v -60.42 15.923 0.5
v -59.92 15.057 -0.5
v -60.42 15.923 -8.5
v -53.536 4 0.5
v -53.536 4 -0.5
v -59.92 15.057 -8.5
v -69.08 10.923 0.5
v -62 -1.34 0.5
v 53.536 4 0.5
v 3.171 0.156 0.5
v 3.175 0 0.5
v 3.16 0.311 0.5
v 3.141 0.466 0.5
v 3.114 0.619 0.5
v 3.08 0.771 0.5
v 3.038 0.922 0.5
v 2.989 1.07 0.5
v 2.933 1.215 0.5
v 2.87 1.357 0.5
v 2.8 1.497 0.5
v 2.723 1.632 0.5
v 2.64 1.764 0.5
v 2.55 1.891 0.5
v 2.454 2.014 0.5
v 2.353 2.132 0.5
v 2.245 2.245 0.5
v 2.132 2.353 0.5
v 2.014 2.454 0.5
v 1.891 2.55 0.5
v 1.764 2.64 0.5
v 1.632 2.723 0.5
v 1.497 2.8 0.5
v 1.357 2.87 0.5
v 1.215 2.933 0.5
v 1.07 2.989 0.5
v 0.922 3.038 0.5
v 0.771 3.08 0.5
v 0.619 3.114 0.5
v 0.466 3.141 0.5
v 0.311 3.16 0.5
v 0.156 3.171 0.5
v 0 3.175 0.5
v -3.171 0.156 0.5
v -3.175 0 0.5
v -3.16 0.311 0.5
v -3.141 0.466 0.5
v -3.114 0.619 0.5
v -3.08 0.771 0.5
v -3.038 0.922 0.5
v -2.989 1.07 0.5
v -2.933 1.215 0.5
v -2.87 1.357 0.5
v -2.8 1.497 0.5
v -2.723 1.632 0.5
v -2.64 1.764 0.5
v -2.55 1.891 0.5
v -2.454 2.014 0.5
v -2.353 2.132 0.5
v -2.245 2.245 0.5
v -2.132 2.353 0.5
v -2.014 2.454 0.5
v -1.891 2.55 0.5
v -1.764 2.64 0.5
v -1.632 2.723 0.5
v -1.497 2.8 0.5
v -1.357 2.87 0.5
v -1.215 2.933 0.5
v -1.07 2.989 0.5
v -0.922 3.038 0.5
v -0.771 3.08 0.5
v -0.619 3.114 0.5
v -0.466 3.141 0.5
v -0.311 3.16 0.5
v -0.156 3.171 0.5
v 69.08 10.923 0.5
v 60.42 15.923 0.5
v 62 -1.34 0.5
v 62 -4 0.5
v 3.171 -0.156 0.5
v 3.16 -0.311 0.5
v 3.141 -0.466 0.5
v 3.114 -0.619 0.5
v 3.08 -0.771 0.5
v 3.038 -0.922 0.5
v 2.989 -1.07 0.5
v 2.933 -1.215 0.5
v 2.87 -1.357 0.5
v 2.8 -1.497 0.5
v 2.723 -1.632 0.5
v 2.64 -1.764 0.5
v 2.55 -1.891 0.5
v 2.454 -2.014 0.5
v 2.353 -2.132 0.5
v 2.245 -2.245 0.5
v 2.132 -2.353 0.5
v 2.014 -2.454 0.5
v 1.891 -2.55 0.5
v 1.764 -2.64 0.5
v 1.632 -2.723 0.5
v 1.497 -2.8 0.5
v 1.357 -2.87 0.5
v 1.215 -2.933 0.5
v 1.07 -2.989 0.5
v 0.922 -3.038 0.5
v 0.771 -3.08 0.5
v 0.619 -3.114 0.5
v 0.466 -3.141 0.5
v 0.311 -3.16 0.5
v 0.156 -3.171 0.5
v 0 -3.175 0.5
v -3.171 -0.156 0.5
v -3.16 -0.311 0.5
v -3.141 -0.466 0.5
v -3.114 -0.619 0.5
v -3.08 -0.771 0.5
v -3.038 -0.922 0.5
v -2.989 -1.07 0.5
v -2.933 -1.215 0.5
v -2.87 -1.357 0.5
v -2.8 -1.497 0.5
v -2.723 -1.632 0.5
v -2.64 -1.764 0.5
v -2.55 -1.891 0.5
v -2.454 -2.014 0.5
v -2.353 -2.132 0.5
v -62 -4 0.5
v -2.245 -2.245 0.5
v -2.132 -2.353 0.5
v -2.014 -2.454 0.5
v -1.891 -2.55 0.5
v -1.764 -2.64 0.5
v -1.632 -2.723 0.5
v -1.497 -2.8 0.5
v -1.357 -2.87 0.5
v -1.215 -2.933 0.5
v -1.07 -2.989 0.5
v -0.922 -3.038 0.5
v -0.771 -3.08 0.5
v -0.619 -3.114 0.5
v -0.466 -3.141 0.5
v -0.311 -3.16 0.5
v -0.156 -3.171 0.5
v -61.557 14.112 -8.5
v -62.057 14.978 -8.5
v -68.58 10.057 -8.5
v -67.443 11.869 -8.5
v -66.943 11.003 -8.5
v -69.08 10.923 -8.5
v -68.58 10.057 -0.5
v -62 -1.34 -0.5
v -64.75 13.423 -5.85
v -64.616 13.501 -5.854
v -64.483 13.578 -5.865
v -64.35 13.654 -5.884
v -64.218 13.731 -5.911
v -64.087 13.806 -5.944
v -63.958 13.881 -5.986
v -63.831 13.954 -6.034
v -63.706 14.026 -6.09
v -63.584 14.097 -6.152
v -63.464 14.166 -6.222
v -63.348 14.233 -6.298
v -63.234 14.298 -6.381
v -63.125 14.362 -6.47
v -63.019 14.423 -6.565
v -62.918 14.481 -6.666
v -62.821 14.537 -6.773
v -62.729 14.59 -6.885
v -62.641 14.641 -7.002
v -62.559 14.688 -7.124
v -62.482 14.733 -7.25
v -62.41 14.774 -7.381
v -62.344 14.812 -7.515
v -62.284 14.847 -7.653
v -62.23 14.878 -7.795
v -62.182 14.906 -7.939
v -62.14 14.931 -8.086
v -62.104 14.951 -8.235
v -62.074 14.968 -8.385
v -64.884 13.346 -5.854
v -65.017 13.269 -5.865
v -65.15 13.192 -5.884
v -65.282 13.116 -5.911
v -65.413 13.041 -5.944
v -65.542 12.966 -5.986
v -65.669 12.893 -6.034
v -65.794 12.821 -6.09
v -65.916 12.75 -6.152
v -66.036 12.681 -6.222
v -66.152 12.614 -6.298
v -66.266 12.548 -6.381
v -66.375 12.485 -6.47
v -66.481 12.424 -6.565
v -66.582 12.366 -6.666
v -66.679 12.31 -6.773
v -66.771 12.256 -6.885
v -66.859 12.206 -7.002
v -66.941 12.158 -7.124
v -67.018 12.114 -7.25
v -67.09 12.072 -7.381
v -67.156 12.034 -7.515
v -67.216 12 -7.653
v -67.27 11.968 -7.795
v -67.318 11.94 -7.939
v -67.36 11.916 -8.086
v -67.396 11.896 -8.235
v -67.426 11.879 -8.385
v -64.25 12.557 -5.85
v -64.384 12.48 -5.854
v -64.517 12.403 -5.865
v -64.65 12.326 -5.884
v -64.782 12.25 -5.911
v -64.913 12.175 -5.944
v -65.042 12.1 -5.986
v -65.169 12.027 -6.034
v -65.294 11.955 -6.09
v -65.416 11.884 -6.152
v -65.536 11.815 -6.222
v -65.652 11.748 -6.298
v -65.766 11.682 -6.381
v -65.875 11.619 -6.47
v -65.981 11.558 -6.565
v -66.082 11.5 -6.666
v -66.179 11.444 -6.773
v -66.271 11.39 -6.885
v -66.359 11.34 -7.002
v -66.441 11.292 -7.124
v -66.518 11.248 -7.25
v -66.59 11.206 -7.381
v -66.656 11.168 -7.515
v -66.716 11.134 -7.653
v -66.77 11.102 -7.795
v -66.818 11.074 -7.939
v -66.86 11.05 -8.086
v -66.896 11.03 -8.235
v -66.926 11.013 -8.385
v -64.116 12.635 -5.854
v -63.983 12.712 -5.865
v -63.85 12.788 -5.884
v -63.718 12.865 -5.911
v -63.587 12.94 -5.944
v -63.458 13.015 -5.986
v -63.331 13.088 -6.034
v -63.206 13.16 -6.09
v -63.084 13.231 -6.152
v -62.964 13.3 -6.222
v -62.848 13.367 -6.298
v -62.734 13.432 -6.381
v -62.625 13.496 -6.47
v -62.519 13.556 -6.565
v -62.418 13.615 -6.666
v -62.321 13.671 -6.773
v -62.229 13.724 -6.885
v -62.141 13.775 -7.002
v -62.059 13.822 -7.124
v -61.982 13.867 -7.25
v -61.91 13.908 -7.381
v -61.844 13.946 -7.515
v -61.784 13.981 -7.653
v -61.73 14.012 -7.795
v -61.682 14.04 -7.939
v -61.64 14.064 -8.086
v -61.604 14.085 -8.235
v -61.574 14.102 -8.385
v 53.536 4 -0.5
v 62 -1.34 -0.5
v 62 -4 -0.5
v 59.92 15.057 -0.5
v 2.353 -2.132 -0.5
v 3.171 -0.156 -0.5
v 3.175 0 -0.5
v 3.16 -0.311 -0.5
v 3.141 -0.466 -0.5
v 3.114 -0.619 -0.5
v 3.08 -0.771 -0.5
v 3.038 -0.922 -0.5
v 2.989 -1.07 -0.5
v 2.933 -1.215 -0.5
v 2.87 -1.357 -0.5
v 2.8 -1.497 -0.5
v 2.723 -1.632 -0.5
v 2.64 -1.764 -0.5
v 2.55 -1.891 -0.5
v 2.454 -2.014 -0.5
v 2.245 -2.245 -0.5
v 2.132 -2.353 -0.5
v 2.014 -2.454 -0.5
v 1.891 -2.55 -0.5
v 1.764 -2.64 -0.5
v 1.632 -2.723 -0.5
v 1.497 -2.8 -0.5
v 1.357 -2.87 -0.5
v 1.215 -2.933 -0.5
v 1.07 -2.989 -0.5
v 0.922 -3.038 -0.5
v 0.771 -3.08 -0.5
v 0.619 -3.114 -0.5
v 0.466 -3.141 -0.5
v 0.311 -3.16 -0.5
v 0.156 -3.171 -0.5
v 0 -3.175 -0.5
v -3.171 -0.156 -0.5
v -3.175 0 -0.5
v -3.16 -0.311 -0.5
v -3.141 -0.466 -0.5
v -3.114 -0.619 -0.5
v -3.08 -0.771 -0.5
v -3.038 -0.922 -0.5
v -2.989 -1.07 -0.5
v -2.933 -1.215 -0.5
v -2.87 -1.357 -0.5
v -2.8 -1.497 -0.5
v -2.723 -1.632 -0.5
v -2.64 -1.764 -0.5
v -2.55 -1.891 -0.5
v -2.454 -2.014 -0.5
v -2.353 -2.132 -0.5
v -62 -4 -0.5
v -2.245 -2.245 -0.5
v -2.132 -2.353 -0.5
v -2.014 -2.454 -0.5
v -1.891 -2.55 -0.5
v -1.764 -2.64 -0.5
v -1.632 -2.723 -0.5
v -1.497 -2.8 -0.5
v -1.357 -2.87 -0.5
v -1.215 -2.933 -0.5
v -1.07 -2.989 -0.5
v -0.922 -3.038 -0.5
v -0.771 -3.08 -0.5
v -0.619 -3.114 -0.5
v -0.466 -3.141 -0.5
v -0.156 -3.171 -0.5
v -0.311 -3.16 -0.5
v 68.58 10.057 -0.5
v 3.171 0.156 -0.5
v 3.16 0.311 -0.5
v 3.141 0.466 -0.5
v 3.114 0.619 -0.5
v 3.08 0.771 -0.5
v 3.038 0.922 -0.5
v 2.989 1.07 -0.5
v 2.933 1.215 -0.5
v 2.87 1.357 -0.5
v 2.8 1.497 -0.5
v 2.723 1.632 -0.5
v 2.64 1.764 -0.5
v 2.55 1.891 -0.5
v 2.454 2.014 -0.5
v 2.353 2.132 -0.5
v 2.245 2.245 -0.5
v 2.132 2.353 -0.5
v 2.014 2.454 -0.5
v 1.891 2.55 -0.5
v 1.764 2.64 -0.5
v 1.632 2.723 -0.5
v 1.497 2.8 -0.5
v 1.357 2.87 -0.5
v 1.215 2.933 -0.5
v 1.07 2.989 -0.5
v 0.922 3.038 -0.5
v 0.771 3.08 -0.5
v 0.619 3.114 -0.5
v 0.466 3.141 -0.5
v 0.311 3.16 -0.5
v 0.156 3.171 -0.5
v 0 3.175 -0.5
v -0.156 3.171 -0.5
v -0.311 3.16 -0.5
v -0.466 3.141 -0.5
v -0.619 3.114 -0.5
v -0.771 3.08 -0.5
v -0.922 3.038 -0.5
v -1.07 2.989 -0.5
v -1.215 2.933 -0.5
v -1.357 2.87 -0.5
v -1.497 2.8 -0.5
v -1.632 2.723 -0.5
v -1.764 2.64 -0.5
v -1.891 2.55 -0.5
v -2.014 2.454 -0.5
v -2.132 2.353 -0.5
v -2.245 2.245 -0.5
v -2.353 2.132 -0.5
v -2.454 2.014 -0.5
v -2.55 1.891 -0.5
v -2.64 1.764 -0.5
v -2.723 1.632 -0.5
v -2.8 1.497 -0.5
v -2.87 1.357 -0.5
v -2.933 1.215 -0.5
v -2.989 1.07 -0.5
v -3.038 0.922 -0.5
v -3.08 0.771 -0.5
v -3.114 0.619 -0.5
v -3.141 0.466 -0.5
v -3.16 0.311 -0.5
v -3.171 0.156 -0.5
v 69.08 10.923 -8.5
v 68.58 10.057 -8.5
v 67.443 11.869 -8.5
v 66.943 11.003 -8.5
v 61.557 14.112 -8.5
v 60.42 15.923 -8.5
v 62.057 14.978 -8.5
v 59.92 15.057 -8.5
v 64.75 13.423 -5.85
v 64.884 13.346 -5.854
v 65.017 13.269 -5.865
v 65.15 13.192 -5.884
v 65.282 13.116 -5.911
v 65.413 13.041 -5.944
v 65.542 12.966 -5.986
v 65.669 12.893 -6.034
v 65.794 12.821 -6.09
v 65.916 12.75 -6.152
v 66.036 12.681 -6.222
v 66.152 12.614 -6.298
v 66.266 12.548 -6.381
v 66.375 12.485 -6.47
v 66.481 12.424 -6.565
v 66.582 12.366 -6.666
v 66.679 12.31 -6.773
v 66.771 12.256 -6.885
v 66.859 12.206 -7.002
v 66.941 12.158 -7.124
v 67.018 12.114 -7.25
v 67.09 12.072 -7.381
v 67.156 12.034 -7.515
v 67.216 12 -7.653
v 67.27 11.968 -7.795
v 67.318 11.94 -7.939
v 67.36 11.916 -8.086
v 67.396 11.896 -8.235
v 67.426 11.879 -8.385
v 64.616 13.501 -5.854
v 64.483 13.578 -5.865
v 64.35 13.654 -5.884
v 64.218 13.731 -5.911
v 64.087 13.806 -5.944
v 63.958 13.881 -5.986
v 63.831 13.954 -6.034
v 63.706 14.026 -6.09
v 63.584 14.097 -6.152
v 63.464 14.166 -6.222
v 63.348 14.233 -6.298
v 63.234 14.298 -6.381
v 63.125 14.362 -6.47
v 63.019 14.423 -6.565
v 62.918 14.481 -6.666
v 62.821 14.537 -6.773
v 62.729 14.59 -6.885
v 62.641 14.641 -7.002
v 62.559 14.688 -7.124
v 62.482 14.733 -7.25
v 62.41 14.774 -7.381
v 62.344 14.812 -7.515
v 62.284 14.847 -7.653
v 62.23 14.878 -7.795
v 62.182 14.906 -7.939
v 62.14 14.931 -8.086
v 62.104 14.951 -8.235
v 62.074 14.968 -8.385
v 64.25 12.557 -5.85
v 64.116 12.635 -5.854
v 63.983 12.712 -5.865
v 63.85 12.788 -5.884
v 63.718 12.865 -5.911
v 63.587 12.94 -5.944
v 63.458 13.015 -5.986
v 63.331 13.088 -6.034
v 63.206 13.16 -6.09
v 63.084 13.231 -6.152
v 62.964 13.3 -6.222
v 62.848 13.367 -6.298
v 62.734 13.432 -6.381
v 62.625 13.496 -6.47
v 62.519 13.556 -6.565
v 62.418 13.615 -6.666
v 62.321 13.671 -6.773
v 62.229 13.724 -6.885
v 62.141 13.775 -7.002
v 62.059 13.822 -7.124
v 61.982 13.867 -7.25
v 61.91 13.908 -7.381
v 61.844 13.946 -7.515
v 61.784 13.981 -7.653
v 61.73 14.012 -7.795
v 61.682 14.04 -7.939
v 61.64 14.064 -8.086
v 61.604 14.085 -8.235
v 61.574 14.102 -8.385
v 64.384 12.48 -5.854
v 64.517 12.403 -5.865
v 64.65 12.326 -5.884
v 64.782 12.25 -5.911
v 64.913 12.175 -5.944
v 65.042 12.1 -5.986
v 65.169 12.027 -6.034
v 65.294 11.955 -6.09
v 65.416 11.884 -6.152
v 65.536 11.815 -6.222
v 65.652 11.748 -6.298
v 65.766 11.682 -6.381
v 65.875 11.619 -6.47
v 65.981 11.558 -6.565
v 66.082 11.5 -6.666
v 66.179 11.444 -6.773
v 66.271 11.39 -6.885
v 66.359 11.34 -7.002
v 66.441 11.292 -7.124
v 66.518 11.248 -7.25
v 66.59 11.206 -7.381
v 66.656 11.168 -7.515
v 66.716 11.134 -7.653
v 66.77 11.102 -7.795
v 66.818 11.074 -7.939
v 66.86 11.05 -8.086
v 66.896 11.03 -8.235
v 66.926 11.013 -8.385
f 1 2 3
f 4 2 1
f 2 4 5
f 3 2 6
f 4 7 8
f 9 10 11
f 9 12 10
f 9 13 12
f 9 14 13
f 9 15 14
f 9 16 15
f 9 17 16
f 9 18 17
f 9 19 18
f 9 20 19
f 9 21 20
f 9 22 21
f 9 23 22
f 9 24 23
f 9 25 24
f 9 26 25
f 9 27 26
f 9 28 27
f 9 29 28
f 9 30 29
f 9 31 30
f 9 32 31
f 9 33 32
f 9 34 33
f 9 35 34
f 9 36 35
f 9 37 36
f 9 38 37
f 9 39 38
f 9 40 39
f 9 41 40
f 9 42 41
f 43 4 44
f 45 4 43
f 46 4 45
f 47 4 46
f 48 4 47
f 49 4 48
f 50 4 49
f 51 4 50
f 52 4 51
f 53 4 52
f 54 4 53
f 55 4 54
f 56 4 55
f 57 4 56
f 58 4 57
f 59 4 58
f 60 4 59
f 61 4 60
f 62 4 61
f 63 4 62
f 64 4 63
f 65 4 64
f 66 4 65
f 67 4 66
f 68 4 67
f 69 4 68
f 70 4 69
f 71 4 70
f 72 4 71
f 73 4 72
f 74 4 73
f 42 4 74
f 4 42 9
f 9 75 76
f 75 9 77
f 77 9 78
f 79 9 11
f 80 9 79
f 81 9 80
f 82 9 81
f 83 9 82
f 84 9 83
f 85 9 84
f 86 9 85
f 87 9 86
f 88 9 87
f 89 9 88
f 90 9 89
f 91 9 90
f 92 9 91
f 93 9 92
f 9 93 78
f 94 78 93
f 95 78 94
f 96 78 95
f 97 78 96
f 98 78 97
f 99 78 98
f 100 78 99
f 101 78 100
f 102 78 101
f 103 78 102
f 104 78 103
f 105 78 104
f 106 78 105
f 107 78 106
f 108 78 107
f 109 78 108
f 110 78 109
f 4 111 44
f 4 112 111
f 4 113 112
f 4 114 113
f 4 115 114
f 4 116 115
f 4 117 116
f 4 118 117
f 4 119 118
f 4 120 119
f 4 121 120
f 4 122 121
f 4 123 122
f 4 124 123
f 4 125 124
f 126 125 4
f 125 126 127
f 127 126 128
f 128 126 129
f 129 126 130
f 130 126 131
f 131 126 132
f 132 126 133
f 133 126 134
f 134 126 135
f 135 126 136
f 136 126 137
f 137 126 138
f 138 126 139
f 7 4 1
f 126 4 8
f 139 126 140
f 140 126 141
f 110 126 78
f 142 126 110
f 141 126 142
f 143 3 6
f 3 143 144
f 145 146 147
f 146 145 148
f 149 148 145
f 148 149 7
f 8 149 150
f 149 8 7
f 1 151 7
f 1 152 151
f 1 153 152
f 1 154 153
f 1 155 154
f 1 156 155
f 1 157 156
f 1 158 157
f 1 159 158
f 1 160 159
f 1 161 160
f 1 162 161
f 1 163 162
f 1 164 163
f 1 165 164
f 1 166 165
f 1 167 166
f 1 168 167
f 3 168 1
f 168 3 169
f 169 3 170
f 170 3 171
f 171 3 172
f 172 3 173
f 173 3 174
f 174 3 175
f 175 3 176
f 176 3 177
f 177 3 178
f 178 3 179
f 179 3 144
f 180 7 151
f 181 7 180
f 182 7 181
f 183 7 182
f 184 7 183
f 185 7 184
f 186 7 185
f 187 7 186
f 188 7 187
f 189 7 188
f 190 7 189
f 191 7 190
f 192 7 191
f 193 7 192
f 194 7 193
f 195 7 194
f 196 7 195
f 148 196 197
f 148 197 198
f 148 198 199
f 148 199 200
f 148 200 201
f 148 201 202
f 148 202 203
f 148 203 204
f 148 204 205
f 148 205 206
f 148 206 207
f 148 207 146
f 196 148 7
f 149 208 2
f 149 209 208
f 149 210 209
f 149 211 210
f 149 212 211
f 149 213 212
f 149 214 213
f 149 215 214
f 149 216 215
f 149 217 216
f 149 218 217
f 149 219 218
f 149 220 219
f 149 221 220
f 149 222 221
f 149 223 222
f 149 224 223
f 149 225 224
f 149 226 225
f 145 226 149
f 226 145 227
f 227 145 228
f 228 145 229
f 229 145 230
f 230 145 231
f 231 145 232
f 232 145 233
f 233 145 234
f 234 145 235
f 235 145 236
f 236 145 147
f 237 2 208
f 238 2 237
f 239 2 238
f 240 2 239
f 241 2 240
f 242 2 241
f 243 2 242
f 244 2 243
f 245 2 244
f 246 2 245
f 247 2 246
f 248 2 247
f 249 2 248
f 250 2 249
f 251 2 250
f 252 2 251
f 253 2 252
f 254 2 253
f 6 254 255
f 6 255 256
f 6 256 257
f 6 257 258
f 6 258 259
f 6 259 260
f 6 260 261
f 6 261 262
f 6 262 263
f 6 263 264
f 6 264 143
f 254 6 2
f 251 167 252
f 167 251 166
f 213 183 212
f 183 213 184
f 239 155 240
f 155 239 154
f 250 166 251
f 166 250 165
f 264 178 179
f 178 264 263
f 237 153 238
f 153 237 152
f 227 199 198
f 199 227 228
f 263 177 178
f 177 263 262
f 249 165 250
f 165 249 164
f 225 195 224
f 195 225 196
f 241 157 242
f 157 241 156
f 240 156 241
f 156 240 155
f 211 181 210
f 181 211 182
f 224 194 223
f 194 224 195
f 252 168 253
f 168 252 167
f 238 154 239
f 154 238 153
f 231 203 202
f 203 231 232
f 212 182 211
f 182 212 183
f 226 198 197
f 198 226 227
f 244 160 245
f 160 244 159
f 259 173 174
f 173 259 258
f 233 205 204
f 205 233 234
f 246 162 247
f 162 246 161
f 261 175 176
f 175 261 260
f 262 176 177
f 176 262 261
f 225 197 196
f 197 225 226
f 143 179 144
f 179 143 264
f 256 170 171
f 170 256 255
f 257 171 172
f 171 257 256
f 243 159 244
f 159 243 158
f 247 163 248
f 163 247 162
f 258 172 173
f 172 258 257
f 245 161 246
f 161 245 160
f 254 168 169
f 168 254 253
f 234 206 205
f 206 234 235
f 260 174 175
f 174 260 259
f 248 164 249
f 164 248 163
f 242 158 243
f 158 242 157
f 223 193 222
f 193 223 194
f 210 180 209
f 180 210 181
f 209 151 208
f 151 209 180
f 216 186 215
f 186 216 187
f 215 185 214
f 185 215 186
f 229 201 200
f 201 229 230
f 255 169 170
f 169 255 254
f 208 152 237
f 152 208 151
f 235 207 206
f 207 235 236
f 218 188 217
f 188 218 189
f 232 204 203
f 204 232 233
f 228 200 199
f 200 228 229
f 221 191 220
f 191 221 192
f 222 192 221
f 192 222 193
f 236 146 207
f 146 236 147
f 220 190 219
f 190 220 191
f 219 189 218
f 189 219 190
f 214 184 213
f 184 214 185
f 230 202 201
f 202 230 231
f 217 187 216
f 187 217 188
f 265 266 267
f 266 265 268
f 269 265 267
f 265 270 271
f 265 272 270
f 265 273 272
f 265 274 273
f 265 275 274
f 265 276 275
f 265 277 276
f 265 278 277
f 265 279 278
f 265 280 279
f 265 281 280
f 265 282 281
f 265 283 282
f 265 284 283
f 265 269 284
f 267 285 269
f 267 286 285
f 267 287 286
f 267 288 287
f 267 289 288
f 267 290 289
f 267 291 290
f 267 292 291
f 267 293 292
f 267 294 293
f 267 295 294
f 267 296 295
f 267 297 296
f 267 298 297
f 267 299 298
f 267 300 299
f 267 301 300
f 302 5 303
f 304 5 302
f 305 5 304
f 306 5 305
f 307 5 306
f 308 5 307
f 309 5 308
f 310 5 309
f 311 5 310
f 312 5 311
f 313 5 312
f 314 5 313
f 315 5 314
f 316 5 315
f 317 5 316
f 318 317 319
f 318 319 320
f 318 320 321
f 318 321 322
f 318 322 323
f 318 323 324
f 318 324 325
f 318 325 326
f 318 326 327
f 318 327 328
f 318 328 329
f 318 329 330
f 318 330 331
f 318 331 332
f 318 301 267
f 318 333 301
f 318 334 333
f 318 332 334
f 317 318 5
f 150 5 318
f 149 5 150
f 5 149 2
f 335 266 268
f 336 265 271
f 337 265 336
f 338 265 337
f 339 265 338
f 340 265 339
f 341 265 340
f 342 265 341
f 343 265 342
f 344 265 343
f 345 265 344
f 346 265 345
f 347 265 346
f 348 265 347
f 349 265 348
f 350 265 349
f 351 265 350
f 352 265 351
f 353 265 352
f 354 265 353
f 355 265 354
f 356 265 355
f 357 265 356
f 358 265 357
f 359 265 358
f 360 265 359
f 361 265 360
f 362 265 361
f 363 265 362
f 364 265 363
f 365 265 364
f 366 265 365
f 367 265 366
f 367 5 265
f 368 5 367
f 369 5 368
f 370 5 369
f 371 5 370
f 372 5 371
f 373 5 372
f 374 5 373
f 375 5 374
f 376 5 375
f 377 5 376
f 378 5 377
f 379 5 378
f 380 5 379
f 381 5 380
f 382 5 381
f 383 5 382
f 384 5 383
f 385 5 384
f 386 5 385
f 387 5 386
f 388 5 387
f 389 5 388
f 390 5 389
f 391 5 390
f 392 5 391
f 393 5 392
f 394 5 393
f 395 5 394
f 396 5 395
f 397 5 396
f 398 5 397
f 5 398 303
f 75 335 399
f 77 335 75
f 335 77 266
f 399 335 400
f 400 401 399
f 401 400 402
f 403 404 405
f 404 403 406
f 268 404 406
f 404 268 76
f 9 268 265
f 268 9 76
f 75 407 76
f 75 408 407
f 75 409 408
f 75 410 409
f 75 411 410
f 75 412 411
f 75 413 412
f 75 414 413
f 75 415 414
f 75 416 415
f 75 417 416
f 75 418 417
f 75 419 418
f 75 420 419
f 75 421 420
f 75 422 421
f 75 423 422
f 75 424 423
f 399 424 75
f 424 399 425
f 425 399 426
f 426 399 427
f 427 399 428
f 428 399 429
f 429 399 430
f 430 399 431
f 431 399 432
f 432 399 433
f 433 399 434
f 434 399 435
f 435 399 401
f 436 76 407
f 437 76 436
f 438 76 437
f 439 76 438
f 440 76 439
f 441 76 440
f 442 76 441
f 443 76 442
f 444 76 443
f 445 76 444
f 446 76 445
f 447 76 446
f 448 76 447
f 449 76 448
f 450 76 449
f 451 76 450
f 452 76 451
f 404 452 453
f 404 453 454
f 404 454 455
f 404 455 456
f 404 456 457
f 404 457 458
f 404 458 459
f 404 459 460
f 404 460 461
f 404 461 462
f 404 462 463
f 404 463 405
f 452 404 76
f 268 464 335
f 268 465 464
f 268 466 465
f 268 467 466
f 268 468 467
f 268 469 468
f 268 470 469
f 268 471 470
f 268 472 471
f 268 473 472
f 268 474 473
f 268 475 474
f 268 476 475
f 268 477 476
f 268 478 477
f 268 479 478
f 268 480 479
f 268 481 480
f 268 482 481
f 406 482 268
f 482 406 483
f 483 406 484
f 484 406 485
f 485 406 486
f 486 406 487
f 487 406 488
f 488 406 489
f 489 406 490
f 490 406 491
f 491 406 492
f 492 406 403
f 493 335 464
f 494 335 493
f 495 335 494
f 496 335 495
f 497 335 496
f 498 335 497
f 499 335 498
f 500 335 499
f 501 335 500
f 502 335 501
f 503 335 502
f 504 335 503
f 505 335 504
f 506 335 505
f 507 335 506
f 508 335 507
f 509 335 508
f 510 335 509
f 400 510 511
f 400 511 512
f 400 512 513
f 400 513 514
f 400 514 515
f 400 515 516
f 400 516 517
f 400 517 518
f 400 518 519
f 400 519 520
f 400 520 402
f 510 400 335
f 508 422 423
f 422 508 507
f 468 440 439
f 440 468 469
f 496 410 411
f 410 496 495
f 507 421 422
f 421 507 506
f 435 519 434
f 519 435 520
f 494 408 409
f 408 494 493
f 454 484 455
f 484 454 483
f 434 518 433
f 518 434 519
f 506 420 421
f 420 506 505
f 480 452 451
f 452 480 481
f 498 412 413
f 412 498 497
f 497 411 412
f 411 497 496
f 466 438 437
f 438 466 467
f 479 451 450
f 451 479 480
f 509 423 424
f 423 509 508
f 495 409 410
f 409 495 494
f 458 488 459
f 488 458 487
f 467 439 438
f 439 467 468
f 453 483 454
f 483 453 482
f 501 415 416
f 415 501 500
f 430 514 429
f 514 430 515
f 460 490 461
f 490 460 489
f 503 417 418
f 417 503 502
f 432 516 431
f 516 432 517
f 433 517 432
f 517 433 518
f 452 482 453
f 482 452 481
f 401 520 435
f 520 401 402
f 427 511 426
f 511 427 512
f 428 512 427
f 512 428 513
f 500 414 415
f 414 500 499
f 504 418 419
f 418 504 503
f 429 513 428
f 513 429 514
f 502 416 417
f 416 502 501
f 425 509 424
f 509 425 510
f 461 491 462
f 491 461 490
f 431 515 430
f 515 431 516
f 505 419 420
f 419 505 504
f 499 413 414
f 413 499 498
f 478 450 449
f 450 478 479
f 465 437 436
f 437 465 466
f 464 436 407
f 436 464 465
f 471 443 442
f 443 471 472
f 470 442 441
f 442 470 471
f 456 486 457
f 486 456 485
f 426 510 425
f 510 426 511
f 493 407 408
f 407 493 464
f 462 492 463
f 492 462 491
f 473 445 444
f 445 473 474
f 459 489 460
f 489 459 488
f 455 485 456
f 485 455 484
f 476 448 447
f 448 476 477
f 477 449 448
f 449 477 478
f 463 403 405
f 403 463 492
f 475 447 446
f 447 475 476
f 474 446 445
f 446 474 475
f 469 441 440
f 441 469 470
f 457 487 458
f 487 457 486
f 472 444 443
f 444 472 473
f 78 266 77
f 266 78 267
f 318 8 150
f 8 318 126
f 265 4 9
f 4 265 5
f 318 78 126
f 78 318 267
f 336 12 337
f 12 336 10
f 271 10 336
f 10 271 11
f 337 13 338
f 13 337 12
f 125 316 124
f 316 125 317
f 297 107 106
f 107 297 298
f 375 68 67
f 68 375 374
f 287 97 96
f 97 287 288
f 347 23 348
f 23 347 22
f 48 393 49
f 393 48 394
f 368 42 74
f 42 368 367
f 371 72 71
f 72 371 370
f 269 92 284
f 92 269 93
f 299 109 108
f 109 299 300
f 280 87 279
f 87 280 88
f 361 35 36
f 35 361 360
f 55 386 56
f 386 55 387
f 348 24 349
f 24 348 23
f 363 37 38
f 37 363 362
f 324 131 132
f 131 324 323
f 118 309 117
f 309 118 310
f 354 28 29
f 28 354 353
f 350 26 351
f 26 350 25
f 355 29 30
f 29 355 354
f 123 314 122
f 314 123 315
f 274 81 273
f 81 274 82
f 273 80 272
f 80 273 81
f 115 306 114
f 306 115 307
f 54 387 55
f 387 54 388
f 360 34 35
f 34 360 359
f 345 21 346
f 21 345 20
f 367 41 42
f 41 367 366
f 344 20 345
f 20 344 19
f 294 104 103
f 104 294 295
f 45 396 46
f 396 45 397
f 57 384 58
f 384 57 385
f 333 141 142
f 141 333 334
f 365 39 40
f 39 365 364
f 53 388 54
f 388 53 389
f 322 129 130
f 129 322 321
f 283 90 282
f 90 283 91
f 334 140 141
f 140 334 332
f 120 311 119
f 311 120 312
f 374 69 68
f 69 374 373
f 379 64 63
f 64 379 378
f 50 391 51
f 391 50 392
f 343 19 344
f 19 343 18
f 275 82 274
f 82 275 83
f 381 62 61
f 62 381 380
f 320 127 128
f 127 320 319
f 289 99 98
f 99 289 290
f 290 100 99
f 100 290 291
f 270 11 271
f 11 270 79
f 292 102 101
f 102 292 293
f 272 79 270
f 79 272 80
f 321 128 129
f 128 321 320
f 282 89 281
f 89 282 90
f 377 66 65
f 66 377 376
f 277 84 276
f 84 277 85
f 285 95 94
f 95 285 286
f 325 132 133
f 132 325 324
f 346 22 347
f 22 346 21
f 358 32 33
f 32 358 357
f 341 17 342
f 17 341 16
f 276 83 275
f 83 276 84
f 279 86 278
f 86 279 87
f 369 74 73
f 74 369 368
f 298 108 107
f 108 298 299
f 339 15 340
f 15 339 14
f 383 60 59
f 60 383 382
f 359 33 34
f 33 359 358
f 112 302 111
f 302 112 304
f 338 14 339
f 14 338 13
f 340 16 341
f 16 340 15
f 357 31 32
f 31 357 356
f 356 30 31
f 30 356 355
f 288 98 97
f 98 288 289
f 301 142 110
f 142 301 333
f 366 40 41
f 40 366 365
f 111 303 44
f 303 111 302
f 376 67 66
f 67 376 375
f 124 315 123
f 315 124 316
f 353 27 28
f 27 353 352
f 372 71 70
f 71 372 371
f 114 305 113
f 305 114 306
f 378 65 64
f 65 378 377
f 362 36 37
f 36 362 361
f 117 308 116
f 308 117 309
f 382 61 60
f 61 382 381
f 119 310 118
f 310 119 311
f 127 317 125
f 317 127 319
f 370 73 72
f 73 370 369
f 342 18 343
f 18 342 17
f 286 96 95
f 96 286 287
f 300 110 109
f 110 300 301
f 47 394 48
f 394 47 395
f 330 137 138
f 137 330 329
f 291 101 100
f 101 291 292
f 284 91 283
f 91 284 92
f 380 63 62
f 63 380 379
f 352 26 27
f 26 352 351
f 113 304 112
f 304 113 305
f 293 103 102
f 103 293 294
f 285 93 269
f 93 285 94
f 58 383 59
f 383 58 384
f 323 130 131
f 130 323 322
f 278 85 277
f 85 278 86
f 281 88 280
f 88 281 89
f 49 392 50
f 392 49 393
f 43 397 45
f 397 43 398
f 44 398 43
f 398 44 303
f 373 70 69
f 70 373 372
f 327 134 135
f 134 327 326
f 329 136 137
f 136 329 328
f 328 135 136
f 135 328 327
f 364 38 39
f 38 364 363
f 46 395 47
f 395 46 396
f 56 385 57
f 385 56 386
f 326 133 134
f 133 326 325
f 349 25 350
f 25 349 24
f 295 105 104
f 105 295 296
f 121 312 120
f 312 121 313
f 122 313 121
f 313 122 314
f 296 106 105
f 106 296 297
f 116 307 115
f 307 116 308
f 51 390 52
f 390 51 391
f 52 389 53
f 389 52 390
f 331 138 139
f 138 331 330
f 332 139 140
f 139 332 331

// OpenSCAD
/* [PLATFORM] */
PLATFORM_WIDTH = 124;
PLATFORM_HEIGHT= 8;
PLATFORM_THICKNESS = 1;

/* [SMA] */
SMA_ANGLE = 30;
SMA_MOUNT_HEIGHT = 9;
SMA_SCREW_Z_OFFSET = 9;
SMA_DIAMETER = 6.3;

SMA_VERTICAL_HOLDER_THICKNESS = 1;
SMA_TOP_HOLDER_WIDTH = 10;
SMA_TOP_HOLDER_HEIGHT = 15;

SMA_MOUNT_DISTANCE = 114;

/* [PHOTO SCREW PORT] */
NUT_INSIDE_DIAMETER = 6.350;

/* [MISC] */
DEBUG = false;
DEBUG_WIDTH = 130;

/* [HIDDEN] */
$fn = 128;
fudge = 0.1;


dock_holder();

module dock_holder(){
    
//    translate([0,0, -PLATFORM_THICKNESS/2])
    union(){
        x_offset = SMA_MOUNT_DISTANCE/2;            
        
        translate([-x_offset, 0, 0])
        rotate([0,0,SMA_ANGLE])        
        sma_mount();
        
        translate([x_offset, 0, 0])
        rotate([0,0,-SMA_ANGLE])
        sma_mount();

        top_platform();
        
        if(DEBUG){
            color("grey")
            translate([0, 0, -SMA_MOUNT_HEIGHT/2])
            translate([0,SMA_TOP_HOLDER_WIDTH*1.5,0])
            cube([DEBUG_WIDTH, 2, PLATFORM_THICKNESS], true);        
        }        
    }
}

module sma_mount(){
    translate([0, SMA_TOP_HOLDER_HEIGHT/2, 0])                    
    cube([SMA_TOP_HOLDER_WIDTH, SMA_TOP_HOLDER_HEIGHT, PLATFORM_THICKNESS], true); 
    
    difference(){
        translate([0, SMA_TOP_HOLDER_HEIGHT, -(SMA_MOUNT_HEIGHT-PLATFORM_THICKNESS)/2 ])                
        cube([SMA_TOP_HOLDER_WIDTH, SMA_VERTICAL_HOLDER_THICKNESS, SMA_MOUNT_HEIGHT], true); 
        
        translate([0, 0, -SMA_SCREW_Z_OFFSET])             
        sma_screw();
    }
}

module top_platform(){
    difference(){
        cube([PLATFORM_WIDTH, PLATFORM_HEIGHT, PLATFORM_THICKNESS], true);
        photo_screw();
    }
}

module sma_screw(){
    radius = SMA_DIAMETER/2;
    tube_length = 100;
    
    translate([0, tube_length, 0])    
    rotate([90,0,0])
    cylinder(tube_length, radius, radius);
}

module photo_screw(){
    radius = NUT_INSIDE_DIAMETER/2;
    tube_length = 20;    
    translate([0,0,-tube_length/2])
    cylinder(tube_length, radius, radius);    
}

// To be a library
module rounded_corners(width, height, depth, corner_curve){
    x_translate = width-corner_curve;
    y_translate = height-corner_curve;     
    
    hull(){
            translate([-x_translate/2, -y_translate/2, 0])
            cylinder(depth,corner_curve/2, corner_curve/2, true);    
            
            translate([-x_translate/2, y_translate/2, 0])
            cylinder(depth,corner_curve/2, corner_curve/2, true);

            translate([x_translate/2, y_translate/2, 0])
            cylinder(depth,corner_curve/2, corner_curve/2, true);        
            
            translate([x_translate/2, -y_translate/2, 0])
            cylinder(depth,corner_curve/2, corner_curve/2, true);        
    }        
}
